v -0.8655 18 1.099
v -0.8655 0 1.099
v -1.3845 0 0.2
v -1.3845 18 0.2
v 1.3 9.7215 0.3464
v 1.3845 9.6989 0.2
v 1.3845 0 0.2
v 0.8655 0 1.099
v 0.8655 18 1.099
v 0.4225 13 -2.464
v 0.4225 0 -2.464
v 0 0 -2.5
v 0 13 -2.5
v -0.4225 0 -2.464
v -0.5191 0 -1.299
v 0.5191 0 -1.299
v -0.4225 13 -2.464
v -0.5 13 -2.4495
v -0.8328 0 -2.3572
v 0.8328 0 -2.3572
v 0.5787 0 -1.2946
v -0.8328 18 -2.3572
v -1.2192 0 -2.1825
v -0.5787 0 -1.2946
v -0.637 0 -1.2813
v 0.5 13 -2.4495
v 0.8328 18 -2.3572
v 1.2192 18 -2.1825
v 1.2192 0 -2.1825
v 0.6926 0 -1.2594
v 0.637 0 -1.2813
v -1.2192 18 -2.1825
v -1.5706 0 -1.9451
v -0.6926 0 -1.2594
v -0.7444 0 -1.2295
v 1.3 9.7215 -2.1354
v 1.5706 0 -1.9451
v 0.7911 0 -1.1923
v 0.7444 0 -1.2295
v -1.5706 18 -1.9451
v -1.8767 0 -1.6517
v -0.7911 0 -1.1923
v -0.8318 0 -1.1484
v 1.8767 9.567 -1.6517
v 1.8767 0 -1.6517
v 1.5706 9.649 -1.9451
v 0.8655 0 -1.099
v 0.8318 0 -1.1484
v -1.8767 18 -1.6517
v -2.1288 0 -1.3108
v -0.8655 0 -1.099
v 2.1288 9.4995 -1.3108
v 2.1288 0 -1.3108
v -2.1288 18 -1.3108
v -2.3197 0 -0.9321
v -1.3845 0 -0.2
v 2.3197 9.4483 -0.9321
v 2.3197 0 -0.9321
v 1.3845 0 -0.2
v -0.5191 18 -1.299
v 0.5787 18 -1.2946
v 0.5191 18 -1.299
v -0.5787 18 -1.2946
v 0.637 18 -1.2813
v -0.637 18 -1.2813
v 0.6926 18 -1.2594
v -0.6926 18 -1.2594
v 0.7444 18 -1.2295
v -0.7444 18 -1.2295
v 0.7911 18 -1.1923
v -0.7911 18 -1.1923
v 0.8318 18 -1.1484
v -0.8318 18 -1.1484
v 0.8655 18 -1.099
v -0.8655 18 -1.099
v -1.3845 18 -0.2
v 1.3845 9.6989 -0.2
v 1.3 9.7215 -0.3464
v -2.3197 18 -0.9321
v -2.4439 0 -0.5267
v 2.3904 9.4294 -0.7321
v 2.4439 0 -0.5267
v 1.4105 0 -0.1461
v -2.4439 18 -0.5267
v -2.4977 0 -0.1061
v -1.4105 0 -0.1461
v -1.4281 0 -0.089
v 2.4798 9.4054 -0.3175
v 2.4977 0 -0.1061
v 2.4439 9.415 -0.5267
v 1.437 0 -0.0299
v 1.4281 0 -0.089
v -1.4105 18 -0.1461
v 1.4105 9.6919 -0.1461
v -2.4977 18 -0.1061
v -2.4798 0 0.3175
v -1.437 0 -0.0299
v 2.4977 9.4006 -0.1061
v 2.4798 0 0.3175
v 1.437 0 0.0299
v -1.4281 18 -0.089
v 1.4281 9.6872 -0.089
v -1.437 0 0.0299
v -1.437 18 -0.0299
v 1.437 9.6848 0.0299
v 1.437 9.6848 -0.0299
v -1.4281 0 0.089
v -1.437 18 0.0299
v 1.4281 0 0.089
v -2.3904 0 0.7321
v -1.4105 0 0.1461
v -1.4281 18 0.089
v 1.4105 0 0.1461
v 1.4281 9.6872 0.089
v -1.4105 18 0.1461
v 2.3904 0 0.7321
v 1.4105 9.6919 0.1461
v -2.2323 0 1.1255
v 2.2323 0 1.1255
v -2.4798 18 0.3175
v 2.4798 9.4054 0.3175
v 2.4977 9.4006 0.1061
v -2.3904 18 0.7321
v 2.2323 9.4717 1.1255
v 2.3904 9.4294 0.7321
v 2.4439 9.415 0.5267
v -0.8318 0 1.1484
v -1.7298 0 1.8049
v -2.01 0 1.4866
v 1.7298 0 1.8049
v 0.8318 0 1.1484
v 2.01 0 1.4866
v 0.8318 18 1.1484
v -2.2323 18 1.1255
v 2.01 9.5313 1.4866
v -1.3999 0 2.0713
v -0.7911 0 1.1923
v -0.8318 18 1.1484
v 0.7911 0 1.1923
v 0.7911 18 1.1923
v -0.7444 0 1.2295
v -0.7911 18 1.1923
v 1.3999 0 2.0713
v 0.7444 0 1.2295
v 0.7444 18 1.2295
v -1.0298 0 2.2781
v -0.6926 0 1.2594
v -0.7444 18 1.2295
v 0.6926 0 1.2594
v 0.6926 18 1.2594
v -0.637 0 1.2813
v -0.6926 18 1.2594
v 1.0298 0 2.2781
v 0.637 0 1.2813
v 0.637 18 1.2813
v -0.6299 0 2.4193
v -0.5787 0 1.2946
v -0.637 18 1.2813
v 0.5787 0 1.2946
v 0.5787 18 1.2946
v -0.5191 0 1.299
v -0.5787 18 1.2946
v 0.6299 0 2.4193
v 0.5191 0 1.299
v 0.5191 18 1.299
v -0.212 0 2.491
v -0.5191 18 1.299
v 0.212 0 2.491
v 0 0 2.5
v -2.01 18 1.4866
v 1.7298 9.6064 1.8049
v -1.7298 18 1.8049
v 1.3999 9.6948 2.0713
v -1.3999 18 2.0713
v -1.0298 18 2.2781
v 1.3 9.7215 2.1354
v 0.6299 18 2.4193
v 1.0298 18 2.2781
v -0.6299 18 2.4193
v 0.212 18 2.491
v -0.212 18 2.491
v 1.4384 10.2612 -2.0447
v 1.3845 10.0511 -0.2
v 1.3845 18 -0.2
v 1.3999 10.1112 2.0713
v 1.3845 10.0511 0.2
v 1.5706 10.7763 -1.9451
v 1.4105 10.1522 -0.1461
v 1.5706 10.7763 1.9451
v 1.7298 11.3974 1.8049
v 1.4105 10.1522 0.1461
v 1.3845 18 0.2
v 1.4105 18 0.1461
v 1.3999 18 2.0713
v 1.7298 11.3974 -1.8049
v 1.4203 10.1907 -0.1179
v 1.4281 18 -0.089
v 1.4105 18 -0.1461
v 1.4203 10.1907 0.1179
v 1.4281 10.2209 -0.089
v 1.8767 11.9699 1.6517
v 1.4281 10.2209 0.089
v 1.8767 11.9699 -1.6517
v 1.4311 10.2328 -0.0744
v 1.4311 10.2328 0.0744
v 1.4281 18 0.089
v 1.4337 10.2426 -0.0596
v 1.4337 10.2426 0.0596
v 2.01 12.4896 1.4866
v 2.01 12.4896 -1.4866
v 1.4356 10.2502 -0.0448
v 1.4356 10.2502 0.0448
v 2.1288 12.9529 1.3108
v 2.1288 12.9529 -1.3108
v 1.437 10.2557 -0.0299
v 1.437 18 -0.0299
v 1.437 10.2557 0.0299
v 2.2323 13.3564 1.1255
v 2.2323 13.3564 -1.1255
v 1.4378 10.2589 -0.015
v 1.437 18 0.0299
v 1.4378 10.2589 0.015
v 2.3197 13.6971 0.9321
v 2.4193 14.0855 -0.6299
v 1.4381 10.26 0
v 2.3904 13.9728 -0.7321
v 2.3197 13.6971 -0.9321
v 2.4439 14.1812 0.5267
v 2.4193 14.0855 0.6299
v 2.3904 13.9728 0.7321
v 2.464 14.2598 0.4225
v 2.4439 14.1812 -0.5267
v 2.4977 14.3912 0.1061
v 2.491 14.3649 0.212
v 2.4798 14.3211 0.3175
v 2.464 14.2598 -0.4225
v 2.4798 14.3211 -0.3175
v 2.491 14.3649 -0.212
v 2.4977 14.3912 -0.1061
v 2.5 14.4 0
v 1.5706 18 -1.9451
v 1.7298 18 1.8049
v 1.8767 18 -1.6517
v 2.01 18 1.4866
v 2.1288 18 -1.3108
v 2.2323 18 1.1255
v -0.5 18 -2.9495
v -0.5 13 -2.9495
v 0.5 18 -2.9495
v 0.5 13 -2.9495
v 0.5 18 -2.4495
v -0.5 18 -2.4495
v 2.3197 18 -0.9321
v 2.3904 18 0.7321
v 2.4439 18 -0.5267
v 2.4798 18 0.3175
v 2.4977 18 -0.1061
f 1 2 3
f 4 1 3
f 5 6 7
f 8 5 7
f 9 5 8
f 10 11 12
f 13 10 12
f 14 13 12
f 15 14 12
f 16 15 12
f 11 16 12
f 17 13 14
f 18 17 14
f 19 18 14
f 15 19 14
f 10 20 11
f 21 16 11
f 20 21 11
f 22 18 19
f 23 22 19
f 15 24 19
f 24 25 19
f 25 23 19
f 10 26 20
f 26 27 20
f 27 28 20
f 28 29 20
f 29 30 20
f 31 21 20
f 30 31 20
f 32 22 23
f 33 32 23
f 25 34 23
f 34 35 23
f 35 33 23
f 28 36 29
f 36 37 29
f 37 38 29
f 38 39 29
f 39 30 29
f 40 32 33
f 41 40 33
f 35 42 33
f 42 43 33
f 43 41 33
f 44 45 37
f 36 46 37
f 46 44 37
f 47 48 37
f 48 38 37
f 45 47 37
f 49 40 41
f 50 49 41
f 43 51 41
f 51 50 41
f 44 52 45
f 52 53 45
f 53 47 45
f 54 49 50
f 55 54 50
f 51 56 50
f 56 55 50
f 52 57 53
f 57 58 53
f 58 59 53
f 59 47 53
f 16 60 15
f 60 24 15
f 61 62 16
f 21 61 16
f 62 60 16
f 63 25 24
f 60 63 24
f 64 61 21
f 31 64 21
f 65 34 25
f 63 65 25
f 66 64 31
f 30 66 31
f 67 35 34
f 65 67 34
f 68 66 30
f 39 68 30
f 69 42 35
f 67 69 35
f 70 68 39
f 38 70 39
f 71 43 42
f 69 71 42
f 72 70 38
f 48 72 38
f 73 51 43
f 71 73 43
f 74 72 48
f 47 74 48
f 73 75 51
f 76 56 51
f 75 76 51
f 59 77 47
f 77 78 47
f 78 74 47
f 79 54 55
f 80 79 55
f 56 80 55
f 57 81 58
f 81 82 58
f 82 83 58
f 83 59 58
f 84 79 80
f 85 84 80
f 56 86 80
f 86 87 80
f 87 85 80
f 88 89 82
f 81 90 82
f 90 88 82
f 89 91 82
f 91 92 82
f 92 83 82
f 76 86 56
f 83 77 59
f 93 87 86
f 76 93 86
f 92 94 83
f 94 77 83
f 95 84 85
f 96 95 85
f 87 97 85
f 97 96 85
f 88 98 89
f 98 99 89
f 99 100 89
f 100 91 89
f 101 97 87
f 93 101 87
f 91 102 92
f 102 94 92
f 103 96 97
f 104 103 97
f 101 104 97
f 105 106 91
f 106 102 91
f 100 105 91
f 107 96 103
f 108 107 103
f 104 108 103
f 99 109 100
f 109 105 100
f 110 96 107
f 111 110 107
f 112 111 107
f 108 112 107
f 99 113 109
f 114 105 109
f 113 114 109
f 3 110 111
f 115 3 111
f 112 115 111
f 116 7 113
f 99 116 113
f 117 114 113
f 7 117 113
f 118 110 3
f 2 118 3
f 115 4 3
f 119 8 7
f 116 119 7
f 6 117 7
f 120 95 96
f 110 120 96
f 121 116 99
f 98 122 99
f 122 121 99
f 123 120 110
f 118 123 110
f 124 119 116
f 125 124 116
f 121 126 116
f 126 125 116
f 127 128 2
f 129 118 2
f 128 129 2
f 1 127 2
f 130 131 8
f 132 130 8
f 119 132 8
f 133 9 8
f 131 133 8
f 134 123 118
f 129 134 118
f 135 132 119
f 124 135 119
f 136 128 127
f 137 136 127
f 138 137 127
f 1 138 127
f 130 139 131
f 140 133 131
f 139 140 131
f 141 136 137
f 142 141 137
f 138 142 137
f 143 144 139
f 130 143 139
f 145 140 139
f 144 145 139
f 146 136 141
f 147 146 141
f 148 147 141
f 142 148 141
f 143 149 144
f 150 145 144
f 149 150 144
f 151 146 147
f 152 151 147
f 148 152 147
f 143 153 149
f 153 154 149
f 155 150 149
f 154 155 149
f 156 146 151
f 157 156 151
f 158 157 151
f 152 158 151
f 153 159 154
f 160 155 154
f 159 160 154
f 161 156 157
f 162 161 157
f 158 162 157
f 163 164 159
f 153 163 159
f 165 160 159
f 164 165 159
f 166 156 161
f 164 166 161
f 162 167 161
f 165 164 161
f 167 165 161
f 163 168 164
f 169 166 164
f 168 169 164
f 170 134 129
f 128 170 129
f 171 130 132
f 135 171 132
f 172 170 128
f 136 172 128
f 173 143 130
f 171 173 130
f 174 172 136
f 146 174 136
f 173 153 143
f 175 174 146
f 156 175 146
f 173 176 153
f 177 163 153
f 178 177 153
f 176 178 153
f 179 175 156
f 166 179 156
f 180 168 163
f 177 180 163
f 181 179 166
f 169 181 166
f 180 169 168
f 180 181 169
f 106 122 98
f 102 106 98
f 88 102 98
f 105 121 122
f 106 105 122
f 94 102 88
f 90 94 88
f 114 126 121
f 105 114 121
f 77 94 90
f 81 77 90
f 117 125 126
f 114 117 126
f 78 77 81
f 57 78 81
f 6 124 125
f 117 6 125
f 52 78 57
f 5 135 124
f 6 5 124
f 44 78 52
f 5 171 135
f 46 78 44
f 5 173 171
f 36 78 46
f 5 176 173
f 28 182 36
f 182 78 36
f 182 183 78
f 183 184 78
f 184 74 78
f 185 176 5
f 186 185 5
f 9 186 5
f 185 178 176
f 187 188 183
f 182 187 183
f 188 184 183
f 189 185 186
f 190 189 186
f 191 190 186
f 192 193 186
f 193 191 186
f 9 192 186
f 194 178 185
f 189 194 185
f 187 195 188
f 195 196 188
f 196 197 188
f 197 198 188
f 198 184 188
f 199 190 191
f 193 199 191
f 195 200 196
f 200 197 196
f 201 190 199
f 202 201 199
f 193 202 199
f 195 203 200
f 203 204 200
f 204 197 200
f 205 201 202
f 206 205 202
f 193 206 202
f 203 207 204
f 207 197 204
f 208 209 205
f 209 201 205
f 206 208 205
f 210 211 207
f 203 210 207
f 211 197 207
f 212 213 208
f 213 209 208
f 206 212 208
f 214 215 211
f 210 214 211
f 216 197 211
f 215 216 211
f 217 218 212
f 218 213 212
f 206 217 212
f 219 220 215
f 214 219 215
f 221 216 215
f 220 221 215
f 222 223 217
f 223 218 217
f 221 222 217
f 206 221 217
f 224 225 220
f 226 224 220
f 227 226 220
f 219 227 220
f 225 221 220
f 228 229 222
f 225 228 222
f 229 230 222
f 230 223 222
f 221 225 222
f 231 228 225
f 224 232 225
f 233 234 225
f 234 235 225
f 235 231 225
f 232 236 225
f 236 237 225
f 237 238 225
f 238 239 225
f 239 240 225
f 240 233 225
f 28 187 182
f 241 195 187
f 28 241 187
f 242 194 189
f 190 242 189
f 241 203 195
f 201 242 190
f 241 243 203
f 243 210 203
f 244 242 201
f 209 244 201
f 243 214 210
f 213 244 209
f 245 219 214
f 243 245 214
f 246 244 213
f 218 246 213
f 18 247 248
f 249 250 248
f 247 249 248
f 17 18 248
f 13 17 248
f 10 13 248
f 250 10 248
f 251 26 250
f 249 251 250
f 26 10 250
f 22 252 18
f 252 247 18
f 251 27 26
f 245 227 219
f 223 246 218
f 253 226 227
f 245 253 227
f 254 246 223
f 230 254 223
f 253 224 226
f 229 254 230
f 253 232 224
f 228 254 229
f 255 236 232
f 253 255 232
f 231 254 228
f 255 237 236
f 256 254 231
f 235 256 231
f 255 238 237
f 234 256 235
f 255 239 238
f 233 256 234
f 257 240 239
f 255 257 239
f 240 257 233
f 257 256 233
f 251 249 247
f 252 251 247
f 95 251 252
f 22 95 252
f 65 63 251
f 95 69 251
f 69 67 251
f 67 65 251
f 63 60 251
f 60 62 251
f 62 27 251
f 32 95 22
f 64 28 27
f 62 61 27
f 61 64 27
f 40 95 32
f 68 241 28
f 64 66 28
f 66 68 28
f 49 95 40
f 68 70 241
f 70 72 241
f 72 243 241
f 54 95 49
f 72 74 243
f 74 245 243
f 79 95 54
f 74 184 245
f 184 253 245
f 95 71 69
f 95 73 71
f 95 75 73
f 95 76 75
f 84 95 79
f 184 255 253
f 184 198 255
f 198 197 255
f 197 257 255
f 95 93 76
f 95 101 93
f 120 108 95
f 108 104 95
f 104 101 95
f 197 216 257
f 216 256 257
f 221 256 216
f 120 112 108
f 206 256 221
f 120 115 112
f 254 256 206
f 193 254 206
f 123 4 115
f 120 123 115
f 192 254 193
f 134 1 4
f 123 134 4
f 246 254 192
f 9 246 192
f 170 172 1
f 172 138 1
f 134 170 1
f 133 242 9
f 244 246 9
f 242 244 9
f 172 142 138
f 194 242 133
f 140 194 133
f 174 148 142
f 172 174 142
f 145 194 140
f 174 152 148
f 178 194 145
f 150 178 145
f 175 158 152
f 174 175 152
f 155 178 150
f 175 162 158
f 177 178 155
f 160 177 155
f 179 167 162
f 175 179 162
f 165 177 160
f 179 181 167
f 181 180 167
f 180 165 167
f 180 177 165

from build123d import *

# Parameters (mm, degrees)
SKETCH1_R               = 2.5
BOSS_EXTRUDE1_DEPTH     = 18
SKETCH3_W               = 1
SKETCH3_H               = 0.5
BOSS_EXTRUDE2_DEPTH     = 5
CUT_EXTRUDE1_DEPTH      = 4
CUT_EXTRUDE1_DEPTH_BACK = 4
CUT_EXTRUDE2_DEPTH      = 34


with BuildPart() as part:
    # Sketch1 → Boss-Extrude1 (new body)
    with BuildSketch(Plane(origin=(0, 0, 0), x_dir=(1, 0, 0), z_dir=(0, 1, 0))):
        Circle(SKETCH1_R)
    extrude(amount=BOSS_EXTRUDE1_DEPTH)

    # Sketch3 → Boss-Extrude2 (add)
    with BuildSketch(Plane(origin=(0, 18, 0), x_dir=(1, 0, 0), z_dir=(0, 1, 0))):
        with Locations((0, 2.699489743)):
            Rectangle(SKETCH3_W, SKETCH3_H)
    extrude(amount=-BOSS_EXTRUDE2_DEPTH)

    # Sketch5 → Cut-Extrude1 (cut, two sides: drawn at the far end of the back side and taken through both)
    with BuildSketch(Plane.XY.offset(-CUT_EXTRUDE1_DEPTH_BACK)):
        Polygon((2.5, 14.4), (1.3, 9.721539031), (2.5, 9.4), align=None)
    extrude(amount=CUT_EXTRUDE1_DEPTH + CUT_EXTRUDE1_DEPTH_BACK, mode=Mode.SUBTRACT)

    # Sketch4 → Cut-Extrude2 (cut)
    with BuildSketch(Plane.XZ):
        with BuildLine():
            Line((-0.519059892, -1.299038106), (0.519059892, -1.299038106))
            ThreePointArc((0.519059892, -1.299038106), (0.719059892, -1.245448267), (0.865470054, -1.099038106))
            Line((0.865470054, -1.099038106), (1.384529946, -0.2))
            ThreePointArc((1.384529946, -0.2), (1.438119785, 0), (1.384529946, 0.2))
            Line((1.384529946, 0.2), (0.865470054, 1.099038106))
            ThreePointArc((0.865470054, 1.099038106), (0.719059892, 1.245448267), (0.519059892, 1.299038106))
            Line((0.519059892, 1.299038106), (-0.519059892, 1.299038106))
            ThreePointArc((-0.519059892, 1.299038106), (-0.719059892, 1.245448267), (-0.865470054, 1.099038106))
            Line((-0.865470054, 1.099038106), (-1.384529946, 0.2))
            ThreePointArc((-1.384529946, 0.2), (-1.438119785, 0), (-1.384529946, -0.2))
            Line((-1.384529946, -0.2), (-0.865470054, -1.099038106))
            ThreePointArc((-0.865470054, -1.099038106), (-0.719059892, -1.245448267), (-0.519059892, -1.299038106))
        make_face()
    extrude(amount=-CUT_EXTRUDE2_DEPTH, mode=Mode.SUBTRACT)


solid = part.part
